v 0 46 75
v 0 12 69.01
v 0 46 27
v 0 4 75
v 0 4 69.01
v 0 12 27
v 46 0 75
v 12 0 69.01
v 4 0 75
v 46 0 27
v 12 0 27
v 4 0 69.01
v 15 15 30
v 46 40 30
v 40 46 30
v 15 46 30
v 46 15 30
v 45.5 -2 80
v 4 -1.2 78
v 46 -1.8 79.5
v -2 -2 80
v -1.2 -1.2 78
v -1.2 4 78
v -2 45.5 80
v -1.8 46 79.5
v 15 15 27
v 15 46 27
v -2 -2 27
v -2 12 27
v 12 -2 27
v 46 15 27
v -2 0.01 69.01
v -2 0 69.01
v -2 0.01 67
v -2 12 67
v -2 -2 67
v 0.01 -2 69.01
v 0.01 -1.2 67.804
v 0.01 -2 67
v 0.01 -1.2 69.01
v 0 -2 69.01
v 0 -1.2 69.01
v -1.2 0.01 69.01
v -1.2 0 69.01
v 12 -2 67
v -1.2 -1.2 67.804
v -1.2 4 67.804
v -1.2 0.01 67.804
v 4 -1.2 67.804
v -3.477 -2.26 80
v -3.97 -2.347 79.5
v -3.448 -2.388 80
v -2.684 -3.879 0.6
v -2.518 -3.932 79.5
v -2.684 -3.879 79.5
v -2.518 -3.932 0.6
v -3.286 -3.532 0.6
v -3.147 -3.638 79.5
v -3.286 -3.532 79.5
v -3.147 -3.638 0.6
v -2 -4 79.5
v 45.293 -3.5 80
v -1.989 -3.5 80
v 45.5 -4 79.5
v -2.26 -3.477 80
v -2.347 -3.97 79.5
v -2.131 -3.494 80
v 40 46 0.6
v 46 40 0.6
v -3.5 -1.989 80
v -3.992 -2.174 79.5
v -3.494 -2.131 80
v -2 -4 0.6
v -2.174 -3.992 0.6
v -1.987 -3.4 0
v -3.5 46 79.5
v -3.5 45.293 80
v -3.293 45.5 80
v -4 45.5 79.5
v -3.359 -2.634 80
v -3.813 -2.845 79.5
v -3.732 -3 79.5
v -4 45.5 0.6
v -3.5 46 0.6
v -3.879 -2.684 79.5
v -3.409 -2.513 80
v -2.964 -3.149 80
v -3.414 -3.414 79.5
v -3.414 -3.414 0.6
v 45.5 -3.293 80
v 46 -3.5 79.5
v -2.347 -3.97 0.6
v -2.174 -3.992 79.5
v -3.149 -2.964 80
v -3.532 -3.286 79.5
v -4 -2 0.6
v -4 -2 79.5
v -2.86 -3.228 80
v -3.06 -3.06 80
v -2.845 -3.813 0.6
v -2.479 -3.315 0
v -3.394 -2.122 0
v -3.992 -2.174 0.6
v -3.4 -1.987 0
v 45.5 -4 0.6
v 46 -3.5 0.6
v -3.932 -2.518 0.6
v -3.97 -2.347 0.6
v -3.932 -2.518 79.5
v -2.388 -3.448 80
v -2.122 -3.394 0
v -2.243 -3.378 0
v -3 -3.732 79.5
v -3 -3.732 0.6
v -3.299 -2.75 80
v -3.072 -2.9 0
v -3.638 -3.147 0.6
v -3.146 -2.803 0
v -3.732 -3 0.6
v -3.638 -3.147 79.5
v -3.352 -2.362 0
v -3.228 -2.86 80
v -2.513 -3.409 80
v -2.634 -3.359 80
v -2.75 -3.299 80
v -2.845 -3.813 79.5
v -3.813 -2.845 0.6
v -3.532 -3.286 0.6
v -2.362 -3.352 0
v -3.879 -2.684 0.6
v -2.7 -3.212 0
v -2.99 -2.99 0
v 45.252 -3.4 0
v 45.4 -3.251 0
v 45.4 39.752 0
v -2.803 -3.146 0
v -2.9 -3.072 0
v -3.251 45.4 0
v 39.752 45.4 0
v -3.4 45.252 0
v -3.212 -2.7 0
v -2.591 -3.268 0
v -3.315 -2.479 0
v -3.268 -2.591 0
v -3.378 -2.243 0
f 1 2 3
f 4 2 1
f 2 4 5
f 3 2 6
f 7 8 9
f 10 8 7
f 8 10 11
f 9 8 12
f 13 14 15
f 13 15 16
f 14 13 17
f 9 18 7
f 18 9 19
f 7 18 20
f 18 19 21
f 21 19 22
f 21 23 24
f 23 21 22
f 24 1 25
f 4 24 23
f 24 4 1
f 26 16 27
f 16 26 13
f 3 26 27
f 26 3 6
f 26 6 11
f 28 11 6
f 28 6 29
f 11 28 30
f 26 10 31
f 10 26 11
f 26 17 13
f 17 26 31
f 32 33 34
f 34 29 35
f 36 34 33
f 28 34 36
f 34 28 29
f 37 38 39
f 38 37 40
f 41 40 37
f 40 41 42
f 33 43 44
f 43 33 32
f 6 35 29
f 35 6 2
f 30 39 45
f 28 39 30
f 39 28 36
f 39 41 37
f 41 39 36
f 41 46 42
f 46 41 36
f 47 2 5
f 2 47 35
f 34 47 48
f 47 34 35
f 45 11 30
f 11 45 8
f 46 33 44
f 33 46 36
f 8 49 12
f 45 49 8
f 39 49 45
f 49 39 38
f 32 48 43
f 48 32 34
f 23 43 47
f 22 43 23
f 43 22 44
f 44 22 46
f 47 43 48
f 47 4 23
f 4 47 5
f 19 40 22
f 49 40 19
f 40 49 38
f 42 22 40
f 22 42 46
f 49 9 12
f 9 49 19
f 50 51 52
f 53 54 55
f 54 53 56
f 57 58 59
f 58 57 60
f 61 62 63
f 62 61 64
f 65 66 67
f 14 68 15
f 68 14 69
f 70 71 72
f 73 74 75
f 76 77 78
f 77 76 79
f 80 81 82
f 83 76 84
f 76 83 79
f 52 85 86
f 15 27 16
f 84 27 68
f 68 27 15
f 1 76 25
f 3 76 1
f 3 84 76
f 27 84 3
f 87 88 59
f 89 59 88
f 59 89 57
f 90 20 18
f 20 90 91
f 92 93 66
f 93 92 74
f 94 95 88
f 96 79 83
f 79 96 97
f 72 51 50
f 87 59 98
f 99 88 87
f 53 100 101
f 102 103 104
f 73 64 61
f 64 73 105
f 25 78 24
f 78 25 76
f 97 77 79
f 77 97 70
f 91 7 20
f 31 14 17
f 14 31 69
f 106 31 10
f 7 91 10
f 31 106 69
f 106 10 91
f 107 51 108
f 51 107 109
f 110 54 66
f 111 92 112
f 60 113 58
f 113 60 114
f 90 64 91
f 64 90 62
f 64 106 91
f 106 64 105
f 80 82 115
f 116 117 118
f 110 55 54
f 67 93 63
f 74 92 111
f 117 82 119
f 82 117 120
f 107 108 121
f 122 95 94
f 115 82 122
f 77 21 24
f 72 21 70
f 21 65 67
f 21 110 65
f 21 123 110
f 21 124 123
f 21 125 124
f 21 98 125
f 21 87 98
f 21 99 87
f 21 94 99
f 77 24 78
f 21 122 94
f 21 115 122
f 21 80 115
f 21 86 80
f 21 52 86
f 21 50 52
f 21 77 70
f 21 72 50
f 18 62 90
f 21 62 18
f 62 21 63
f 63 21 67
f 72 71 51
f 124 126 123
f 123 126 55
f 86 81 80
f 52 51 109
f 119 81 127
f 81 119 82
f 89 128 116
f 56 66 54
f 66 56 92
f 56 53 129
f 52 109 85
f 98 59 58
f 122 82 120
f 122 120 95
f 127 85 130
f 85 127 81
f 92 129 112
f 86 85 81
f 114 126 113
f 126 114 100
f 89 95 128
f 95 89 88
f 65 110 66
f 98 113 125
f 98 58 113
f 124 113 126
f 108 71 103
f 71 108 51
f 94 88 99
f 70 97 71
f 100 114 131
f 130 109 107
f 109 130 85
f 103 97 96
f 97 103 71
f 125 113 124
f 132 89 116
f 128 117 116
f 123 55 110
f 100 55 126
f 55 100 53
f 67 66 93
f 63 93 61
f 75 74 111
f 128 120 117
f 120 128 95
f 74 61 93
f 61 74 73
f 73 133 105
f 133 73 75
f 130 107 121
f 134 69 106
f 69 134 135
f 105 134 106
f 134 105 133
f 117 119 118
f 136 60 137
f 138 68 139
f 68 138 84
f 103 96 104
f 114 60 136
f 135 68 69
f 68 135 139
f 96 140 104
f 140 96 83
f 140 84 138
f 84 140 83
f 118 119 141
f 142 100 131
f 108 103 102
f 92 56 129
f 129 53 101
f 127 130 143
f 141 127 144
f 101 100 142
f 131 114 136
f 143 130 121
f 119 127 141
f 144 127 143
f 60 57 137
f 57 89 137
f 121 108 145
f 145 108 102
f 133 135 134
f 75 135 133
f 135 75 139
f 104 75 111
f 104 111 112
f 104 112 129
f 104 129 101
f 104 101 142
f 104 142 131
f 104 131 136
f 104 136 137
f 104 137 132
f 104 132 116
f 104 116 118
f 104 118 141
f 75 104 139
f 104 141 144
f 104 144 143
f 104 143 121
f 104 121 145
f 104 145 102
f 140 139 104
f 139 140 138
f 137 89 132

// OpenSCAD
// =====================================================================
//  SAMA 3: peça de canto (pé + capa da quina do perfil + luva da cúpula)
//  Imprimir 4 peças iguais em PLA. A peça é simétrica na diagonal,
//  então a mesma peça serve nos 4 cantos.
//
//  Maquete: base 1000 x 800 mm, 35 mm de altura, perfil de alumínio
//  em volta. Cúpula de acrílico 6 mm apoiada em cima da base.
//
//  Princípio: a face interna da parede em L é UM plano contínuo.
//    - embaixo ela encosta no perfil de alumínio (face externa da base);
//    - em cima ela encosta no acrílico (face externa da cúpula).
//  Como os dois encostam no mesmo plano, a cúpula fica RENTE à base
//  por construção e nunca passa para fora. Só a peça de PLA fica
//  4 mm para fora, nos cantos, cobrindo a quina imperfeita do perfil.
//
//  Origem: quina externa da base (encontro das duas faces externas do
//  perfil), na altura da FACE DE BAIXO da base. +X e +Y entram na base,
//  +Z para cima.  Mesa = -30, fundo da base = 0, topo da base = +35.
//  Medidas em mm.
// =====================================================================

/* [Maquete (medidas reais)] */
altura_base = 35;          // base com perfil
altura_pe   = 30;          // "pezinho de 3 cm": levanta a base da mesa

/* [Peça] */
parede      = 4;           // espessura da parede (é o quanto a peça fica para fora)
braco       = 50;          // comprimento externo de cada braço do L
luva_acima  = 15;          // quanto a parede sobe acima do topo da base (cobre o acrílico)
funil_h     = 2;           // funil de entrada da cúpula: abertura horizontal
funil_v     = 5;           // funil de entrada da cúpula: altura

/* [Alívios para o perfil imperfeito] */
bolsa_prof  = 2;           // bolsa na quina do perfil: profundidade na parede
bolsa_comp  = 12;          // bolsa: comprimento a partir da quina (em cada face)
bolsa_acima = 2;           // bolsa sobe até topo da base + isto (depois teto 45°)
faixa_larg  = 15;          // rebaixo no topo do pé (aba de baixo do perfil / rebarba)
faixa_prof  = 3;
entalhe_prof = 1.2;        // entalhe vertical na quina (cola/aresta da caixa de acrílico)
entalhe_comp = 4;

/* [Ajuste se o acrílico for MENOR que a base] */
recuo = 0;                 // 0 = rente. Caixa menor em D (total) -> recuo = D/2. Máx 2.

/* [Acabamento] */
raio_quina   = 2;          // arredondamento da quina externa vertical
chanfro_base = 0.6;        // chanfro na borda de baixo (pé de elefante)
chanfro_cosm = 0.5;        // chanfro nas bordas externas visíveis
chanfro_pe   = 6;          // chanfro do canto interno do pé (economia/visual)

/* [Fixação opcional (desligada no teste)] */
furo_parafuso   = false;   // rasgo diagonal para parafuso 3,5 mm de baixo para cima
rasgo_larg      = 4.2;
rasgo_curso     = 5;       // folga de ajuste ao longo da diagonal
rebaixo_larg    = 9;       // cabeça do parafuso
alma_parafuso   = 6;       // PLA que sobra entre a cabeça e a base
pele_sacrificio = 0.2;     // camada para não precisar de ponte; furar com broca 4

/* [Saída] */
teste_rapido = false;      // só a fatia de cima (25 mm) para testar o encaixe
teste_z0     = 25;

$fn = 64;
e = 0.01;

// ---------- derivadas ----------
L     = braco - parede;               // comprimento da face de referência (46)
z_top = altura_base + luva_acima;     // topo da peça (50)
z_fun = z_top - funil_v;              // início do funil (45)
z_bol = altura_base + bolsa_acima;    // topo reto da bolsa (37)
z_rec = altura_base + bolsa_acima;    // início do recuo (37), sempre acima do perfil
G     = L + 10;                       // cavidade passa das pontas dos braços

assert(recuo >= 0 && recuo <= 2, "recuo deve ficar entre 0 e 2 mm");
assert(funil_h < parede, "funil maior que a parede");
assert(bolsa_prof < parede, "bolsa maior que a parede");

echo(str("Altura total: ", altura_pe + z_top, " mm | parede para fora da base: ", parede, " mm"));
echo(str("Apoio da base no pé: ", L - faixa_larg, " x ", L - faixa_larg, " mm"));

// ---------- contorno externo (convexo) ----------
module contorno() {
    polygon(concat(
        // quina externa arredondada (centro em -parede+raio)
        [for (a = [180:5:270]) [-parede + raio_quina + raio_quina*cos(a),
                                -parede + raio_quina + raio_quina*sin(a)]],
        [[L - chanfro_cosm, -parede], [L, -parede + chanfro_cosm],
         [L, L - chanfro_pe], [L - chanfro_pe, L],
         [-parede + chanfro_cosm, L], [-parede, L - chanfro_cosm]]
    ));
}

module lamina(z, d = 0) {   // contorno fino na altura z, recuado d
    translate([0, 0, z]) linear_extrude(e) offset(delta = -d) contorno();
}

// casca externa com chanfro embaixo e no topo
module casca() {
    hull() {
        lamina(-altura_pe, chanfro_base);
        lamina(-altura_pe + chanfro_base);
        lamina(z_top - chanfro_cosm - e);
        lamina(z_top - e, chanfro_cosm);
    }
}

// ---------- cavidade (onde ficam base e acrílico) ----------
module quadrante(z, o) {    // quadrante interno a partir de (o,o)
    translate([o, o, z]) cube([G - o, G - o, e]);
}

module cavidade() {
    r = recuo;
    // base + perfil: plano de referência em x=0 / y=0
    hull() { quadrante(0, 0); quadrante(z_rec, 0); }
    if (r > 0) {
        hull() { quadrante(z_rec, 0); quadrante(z_rec + r, r); }   // degrau a 45°
        hull() { quadrante(z_rec + r, r); quadrante(z_fun, r); }
    } else {
        hull() { quadrante(z_rec, 0); quadrante(z_fun, 0); }
    }
    // funil de entrada
    hull() { quadrante(z_fun, r); quadrante(z_top, r - funil_h); }
    hull() { quadrante(z_top, r - funil_h); quadrante(z_top + 1, r - funil_h); }
}

// ---------- alívios ----------
module em_L(a, b, c, z0, z1) {  // L nas duas faces: faixa [a,b] na parede, até c ao longo
    translate([a, a, z0]) cube([b - a, c - a, z1 - z0]);
    translate([a, a, z0]) cube([c - a, b - a, z1 - z0]);
}

module bolsa_quina() {          // bolsa da quina do perfil, com teto a 45°
    for (m = [0, 1]) mirror(m ? [1, -1, 0] : [0, 0, 0])
        hull() {
            translate([-bolsa_prof, -bolsa_prof, -faixa_prof])
                cube([bolsa_prof + e, bolsa_comp + bolsa_prof, z_bol + faixa_prof]);
            translate([0, -bolsa_prof, z_bol + bolsa_prof])
                cube([e, bolsa_comp + bolsa_prof, e]);
        }
}

module entalhe_quina() {        // entalhe vertical para a aresta colada do acrílico
    em_L(-entalhe_prof, e, entalhe_comp, -faixa_prof, z_rec + recuo + e);
    if (recuo > 0)
        translate([recuo, recuo, 0])
            em_L(-entalhe_prof, e, entalhe_comp, z_rec, z_top + 1);
    else
        em_L(-entalhe_prof, e, entalhe_comp, z_rec, z_top + 1);
}

module faixa_pe() {             // rebaixo no topo do pé, junto ao perfil
    translate([0, 0, -faixa_prof]) cube([faixa_larg, G, faixa_prof + e]);
    translate([0, 0, -faixa_prof]) cube([G, faixa_larg, faixa_prof + e]);
}

module rasgo_parafuso() {
    c1 = (L + faixa_larg) / 2 - rasgo_curso / (2*sqrt(2));
    c2 = (L + faixa_larg) / 2 + rasgo_curso / (2*sqrt(2));
    z_reb = -alma_parafuso;
    hull() for (c = [c1, c2]) translate([c, c, z_reb + pele_sacrificio])
        cylinder(d = rasgo_larg, h = alma_parafuso);
    hull() for (c = [c1, c2]) translate([c, c, -altura_pe - 1])
        cylinder(d = rebaixo_larg, h = altura_pe - alma_parafuso + 1);
}

// ---------- peça ----------
module peca() {
    difference() {
        casca();
        cavidade();
        faixa_pe();
        bolsa_quina();
        entalhe_quina();
        if (furo_parafuso) rasgo_parafuso();
    }
}

if (teste_rapido)
    translate([0, 0, -teste_z0])
    intersection() {
        peca();
        translate([-50, -50, teste_z0]) cube([200, 200, 100]);
    }
else
    translate([0, 0, altura_pe]) peca();   // mesa em z=0 para exportar
